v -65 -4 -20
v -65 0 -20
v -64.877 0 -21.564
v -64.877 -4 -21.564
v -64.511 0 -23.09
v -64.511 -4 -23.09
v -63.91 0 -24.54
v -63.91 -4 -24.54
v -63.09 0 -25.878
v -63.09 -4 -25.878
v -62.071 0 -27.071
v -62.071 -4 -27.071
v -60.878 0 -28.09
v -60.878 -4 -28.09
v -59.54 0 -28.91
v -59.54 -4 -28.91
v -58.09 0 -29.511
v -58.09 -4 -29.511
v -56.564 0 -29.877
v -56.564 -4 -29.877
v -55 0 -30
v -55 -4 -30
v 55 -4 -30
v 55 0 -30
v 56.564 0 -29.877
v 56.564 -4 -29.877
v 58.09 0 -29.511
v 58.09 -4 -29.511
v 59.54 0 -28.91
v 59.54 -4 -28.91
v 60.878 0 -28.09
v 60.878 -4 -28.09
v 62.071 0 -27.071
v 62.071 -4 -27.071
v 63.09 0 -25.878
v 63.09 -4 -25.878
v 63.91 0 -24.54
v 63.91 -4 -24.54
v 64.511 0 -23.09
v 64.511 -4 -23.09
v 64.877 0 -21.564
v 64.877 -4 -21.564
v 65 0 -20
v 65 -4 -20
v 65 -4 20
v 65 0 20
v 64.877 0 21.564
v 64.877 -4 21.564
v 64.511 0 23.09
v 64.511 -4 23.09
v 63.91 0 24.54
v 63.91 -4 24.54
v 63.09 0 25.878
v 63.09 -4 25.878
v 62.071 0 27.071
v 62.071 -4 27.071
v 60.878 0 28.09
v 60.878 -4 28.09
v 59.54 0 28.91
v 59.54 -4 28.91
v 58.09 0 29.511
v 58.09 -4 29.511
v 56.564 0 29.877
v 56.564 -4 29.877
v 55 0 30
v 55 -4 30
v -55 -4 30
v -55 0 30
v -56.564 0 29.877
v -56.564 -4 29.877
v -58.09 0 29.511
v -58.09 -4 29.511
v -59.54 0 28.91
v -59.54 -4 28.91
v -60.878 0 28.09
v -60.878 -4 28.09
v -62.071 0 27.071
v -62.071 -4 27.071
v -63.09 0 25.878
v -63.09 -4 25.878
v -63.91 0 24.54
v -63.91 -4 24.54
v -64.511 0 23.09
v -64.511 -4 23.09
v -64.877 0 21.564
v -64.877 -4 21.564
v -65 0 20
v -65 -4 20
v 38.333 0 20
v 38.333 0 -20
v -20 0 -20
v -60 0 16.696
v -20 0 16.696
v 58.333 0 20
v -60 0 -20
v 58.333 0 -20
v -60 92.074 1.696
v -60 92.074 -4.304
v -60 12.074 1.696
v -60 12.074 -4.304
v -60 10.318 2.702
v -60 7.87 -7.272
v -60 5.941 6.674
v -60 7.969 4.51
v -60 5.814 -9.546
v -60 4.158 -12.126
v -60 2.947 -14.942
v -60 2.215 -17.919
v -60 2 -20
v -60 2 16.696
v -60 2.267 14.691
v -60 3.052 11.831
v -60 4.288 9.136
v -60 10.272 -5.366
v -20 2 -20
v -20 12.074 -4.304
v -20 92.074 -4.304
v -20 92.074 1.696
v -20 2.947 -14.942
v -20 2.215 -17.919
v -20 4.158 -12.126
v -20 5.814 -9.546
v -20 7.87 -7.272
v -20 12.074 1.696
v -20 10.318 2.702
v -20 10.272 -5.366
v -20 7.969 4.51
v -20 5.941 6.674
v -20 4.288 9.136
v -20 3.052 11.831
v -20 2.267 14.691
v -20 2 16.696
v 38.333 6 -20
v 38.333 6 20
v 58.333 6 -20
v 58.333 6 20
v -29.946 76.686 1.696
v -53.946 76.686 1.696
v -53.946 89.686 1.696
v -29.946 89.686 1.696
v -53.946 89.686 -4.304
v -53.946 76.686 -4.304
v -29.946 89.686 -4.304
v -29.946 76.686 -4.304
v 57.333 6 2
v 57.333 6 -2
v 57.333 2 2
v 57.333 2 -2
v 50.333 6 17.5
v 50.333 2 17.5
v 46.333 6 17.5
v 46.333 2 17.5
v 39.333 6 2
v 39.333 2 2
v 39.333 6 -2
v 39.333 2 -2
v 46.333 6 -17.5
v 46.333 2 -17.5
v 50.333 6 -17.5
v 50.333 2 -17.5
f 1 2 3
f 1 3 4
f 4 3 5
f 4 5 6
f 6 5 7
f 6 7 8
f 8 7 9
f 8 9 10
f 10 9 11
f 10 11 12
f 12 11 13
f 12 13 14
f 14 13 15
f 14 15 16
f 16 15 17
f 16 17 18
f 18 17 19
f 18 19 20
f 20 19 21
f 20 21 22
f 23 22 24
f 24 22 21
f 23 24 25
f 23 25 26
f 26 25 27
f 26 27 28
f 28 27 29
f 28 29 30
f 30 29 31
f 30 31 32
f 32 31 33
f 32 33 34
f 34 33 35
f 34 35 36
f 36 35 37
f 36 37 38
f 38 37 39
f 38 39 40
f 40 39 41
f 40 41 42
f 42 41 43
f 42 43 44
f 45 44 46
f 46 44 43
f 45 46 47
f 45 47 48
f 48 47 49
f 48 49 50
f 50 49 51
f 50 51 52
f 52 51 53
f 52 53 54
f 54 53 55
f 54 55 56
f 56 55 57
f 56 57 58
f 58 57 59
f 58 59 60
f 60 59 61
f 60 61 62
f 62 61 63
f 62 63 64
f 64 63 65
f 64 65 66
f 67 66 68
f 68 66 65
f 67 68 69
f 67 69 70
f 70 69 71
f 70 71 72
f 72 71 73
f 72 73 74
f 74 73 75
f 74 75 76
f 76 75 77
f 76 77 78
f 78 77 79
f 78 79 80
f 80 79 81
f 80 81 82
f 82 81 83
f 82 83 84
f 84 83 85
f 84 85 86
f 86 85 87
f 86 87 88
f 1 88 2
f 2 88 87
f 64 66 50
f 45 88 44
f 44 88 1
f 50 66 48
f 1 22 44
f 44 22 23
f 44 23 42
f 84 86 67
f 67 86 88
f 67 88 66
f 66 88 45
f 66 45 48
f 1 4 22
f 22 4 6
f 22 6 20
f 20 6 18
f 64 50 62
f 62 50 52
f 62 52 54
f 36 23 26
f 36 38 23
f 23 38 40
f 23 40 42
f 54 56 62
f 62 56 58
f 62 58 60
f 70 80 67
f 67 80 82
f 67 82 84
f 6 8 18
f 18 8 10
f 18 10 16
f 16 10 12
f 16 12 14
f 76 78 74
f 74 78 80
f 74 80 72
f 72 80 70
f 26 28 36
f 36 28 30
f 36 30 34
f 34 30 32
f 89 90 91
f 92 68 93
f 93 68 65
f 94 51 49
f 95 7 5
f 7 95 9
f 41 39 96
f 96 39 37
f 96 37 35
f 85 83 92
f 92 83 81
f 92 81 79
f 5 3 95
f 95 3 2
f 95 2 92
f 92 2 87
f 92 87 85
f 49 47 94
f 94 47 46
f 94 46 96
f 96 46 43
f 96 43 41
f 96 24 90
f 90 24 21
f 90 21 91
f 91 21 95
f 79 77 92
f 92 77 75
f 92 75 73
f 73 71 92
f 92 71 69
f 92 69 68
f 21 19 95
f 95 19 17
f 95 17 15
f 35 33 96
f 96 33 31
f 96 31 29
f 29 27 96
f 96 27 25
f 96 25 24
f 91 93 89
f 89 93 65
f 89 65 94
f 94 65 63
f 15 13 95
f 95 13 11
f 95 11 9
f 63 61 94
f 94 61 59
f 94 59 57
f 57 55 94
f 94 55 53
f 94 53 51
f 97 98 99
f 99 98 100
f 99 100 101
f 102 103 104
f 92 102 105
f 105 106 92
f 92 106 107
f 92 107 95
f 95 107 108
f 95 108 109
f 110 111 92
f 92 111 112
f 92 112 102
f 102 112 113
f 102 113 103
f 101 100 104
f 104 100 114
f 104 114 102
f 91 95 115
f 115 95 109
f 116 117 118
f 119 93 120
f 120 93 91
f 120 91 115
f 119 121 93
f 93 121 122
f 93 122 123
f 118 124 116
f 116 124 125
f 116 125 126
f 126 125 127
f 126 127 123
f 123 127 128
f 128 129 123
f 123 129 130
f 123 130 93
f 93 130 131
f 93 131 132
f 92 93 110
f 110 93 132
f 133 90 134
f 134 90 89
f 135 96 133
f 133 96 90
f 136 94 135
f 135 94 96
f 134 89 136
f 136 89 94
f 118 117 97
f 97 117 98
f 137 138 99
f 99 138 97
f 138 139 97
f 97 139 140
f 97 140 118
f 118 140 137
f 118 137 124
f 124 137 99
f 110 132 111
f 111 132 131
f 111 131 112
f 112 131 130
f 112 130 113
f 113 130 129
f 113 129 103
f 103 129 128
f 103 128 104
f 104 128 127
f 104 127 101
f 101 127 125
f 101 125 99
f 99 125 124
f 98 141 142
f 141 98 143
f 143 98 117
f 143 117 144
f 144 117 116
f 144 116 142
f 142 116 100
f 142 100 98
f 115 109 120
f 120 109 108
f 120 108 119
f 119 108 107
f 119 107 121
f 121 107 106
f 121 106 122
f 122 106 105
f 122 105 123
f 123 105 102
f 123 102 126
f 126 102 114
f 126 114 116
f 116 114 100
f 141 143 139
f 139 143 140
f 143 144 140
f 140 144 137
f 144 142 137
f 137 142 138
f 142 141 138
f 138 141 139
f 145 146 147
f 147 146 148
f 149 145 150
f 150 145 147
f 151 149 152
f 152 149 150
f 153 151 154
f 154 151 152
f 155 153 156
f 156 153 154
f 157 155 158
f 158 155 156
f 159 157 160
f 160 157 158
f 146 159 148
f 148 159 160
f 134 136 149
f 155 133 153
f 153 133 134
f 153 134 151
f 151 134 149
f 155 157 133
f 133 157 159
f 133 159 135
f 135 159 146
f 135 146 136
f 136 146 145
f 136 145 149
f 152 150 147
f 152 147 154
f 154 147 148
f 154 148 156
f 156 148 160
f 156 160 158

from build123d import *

# Parameters (mm, degrees)
BOSS_EXTRUDE3_DEPTH = 4
SKETCH2_W           = 40
SKETCH2_H           = 36.696145016
SKETCH2_W_2         = 20
SKETCH2_H_2         = 40
BOSS_EXTRUDE4_DEPTH = 2
LOFT8_START         = -60
LOFT8_DEPTH         = 40
SKETCH10_W          = 24
SKETCH10_H          = 13
CUT_EXTRUDE1_DEPTH  = 6
SKETCH11_W          = 20
SKETCH11_H          = 40
BOSS_EXTRUDE5_DEPTH = 4


# Read off the part's stored shape, not the designer's step: Loft8
with BuildPart() as part:
    # Sketch1 → Boss-Extrude3 (new body)
    with BuildSketch(Plane(origin=(0, 0, 0), x_dir=(1, 0, 0), z_dir=(0, 1, 0))):
        with BuildLine():
            Line((-55, -30), (55, -30))
            ThreePointArc((55, -30), (62.071067812, -27.071067812), (65, -20))
            Line((65, -20), (65, 20))
            ThreePointArc((65, 20), (62.071067812, 27.071067812), (55, 30))
            Line((55, 30), (-55, 30))
            ThreePointArc((-55, 30), (-62.071067812, 27.071067812), (-65, 20))
            Line((-65, 20), (-65, -20))
            ThreePointArc((-65, -20), (-62.071067812, -27.071067812), (-55, -30))
        make_face()
    extrude(amount=-BOSS_EXTRUDE3_DEPTH)

    # Sketch2 → Boss-Extrude4 (add)
    with BuildSketch(Plane(origin=(0, 2, 0), x_dir=(1, 0, 0), z_dir=(0, 1, 0))):
        with Locations((-40, 1.651927492)):
            Rectangle(SKETCH2_W, SKETCH2_H)
        with Locations((48.333333333, 0)):
            Rectangle(SKETCH2_W_2, SKETCH2_H_2)
    extrude(amount=-BOSS_EXTRUDE4_DEPTH)

    # Loft8 outline → Loft8 (add)
    with BuildSketch(Plane.YZ.offset(LOFT8_START)):
        with BuildLine():
            Line((92.073834687, -4.303854984), (92.073834687, 1.696145016))
            Line((92.073834687, 1.696145016), (12.073834687, 1.696145016))
            ThreePointArc((12.073834687, 1.696145016), (5.064409277, 7.871430337), (2, 16.696145016))
            Line((2, 16.696145016), (2, -20))
            ThreePointArc((2, -20), (4.932872822, -10.801545174), (12.073834687, -4.303854984))
            Line((12.073834687, -4.303854984), (92.073834687, -4.303854984))
        make_face()
    extrude(amount=LOFT8_DEPTH)

    # Sketch10 → Cut-Extrude1 (cut)
    with BuildSketch(Plane.XY.offset(1.696145016)):
        with Locations((-41.946023743, 83.186487073)):
            Rectangle(SKETCH10_W, SKETCH10_H)
    extrude(amount=-CUT_EXTRUDE1_DEPTH, mode=Mode.SUBTRACT)

    # Sketch11 → Boss-Extrude5 (add)
    # profile 1 of 5: a face of its own
    with BuildSketch(Plane(origin=(0, 2, 0), x_dir=(1, 0, 0), z_dir=(0, 1, 0))):
        with Locations((48.333333333, 0)):
            Rectangle(SKETCH11_W, SKETCH11_H)
        Polygon((57.333333333, 2), (57.333333333, 0), (57.333333333, -2), (57.333333333, -17.5), (50.333333333, -17.5), (48.333333333, -17.5), (46.333333333, -17.5), (39.333333333, -17.5), (39.333333333, -2), (39.333333333, 0), (39.333333333, 2), (39.333333333, 17.5), (46.333333333, 17.5), (48.333333333, 17.5), (50.333333333, 17.5), (57.333333333, 17.5), align=None, mode=Mode.SUBTRACT)
    # profile 2 of 5: a face of its own
    with BuildSketch(Plane(origin=(0, 2, 0), x_dir=(1, 0, 0), z_dir=(0, 1, 0))):
        Polygon((50.333333333, 17.5), (57.333333333, 2), (57.333333333, 17.5), align=None)
    # profile 3 of 5: a face of its own
    with BuildSketch(Plane(origin=(0, 2, 0), x_dir=(1, 0, 0), z_dir=(0, 1, 0))):
        Polygon((39.333333333, 2), (46.333333333, 17.5), (39.333333333, 17.5), align=None)
    # profile 4 of 5: a face of its own
    with BuildSketch(Plane(origin=(0, 2, 0), x_dir=(1, 0, 0), z_dir=(0, 1, 0))):
        Polygon((39.333333333, -17.5), (46.333333333, -17.5), (39.333333333, -2), align=None)
    # profile 5 of 5: a face of its own
    with BuildSketch(Plane(origin=(0, 2, 0), x_dir=(1, 0, 0), z_dir=(0, 1, 0))):
        Polygon((57.333333333, -17.5), (57.333333333, -2), (50.333333333, -17.5), align=None)
    extrude(amount=BOSS_EXTRUDE5_DEPTH)


solid = part.part
